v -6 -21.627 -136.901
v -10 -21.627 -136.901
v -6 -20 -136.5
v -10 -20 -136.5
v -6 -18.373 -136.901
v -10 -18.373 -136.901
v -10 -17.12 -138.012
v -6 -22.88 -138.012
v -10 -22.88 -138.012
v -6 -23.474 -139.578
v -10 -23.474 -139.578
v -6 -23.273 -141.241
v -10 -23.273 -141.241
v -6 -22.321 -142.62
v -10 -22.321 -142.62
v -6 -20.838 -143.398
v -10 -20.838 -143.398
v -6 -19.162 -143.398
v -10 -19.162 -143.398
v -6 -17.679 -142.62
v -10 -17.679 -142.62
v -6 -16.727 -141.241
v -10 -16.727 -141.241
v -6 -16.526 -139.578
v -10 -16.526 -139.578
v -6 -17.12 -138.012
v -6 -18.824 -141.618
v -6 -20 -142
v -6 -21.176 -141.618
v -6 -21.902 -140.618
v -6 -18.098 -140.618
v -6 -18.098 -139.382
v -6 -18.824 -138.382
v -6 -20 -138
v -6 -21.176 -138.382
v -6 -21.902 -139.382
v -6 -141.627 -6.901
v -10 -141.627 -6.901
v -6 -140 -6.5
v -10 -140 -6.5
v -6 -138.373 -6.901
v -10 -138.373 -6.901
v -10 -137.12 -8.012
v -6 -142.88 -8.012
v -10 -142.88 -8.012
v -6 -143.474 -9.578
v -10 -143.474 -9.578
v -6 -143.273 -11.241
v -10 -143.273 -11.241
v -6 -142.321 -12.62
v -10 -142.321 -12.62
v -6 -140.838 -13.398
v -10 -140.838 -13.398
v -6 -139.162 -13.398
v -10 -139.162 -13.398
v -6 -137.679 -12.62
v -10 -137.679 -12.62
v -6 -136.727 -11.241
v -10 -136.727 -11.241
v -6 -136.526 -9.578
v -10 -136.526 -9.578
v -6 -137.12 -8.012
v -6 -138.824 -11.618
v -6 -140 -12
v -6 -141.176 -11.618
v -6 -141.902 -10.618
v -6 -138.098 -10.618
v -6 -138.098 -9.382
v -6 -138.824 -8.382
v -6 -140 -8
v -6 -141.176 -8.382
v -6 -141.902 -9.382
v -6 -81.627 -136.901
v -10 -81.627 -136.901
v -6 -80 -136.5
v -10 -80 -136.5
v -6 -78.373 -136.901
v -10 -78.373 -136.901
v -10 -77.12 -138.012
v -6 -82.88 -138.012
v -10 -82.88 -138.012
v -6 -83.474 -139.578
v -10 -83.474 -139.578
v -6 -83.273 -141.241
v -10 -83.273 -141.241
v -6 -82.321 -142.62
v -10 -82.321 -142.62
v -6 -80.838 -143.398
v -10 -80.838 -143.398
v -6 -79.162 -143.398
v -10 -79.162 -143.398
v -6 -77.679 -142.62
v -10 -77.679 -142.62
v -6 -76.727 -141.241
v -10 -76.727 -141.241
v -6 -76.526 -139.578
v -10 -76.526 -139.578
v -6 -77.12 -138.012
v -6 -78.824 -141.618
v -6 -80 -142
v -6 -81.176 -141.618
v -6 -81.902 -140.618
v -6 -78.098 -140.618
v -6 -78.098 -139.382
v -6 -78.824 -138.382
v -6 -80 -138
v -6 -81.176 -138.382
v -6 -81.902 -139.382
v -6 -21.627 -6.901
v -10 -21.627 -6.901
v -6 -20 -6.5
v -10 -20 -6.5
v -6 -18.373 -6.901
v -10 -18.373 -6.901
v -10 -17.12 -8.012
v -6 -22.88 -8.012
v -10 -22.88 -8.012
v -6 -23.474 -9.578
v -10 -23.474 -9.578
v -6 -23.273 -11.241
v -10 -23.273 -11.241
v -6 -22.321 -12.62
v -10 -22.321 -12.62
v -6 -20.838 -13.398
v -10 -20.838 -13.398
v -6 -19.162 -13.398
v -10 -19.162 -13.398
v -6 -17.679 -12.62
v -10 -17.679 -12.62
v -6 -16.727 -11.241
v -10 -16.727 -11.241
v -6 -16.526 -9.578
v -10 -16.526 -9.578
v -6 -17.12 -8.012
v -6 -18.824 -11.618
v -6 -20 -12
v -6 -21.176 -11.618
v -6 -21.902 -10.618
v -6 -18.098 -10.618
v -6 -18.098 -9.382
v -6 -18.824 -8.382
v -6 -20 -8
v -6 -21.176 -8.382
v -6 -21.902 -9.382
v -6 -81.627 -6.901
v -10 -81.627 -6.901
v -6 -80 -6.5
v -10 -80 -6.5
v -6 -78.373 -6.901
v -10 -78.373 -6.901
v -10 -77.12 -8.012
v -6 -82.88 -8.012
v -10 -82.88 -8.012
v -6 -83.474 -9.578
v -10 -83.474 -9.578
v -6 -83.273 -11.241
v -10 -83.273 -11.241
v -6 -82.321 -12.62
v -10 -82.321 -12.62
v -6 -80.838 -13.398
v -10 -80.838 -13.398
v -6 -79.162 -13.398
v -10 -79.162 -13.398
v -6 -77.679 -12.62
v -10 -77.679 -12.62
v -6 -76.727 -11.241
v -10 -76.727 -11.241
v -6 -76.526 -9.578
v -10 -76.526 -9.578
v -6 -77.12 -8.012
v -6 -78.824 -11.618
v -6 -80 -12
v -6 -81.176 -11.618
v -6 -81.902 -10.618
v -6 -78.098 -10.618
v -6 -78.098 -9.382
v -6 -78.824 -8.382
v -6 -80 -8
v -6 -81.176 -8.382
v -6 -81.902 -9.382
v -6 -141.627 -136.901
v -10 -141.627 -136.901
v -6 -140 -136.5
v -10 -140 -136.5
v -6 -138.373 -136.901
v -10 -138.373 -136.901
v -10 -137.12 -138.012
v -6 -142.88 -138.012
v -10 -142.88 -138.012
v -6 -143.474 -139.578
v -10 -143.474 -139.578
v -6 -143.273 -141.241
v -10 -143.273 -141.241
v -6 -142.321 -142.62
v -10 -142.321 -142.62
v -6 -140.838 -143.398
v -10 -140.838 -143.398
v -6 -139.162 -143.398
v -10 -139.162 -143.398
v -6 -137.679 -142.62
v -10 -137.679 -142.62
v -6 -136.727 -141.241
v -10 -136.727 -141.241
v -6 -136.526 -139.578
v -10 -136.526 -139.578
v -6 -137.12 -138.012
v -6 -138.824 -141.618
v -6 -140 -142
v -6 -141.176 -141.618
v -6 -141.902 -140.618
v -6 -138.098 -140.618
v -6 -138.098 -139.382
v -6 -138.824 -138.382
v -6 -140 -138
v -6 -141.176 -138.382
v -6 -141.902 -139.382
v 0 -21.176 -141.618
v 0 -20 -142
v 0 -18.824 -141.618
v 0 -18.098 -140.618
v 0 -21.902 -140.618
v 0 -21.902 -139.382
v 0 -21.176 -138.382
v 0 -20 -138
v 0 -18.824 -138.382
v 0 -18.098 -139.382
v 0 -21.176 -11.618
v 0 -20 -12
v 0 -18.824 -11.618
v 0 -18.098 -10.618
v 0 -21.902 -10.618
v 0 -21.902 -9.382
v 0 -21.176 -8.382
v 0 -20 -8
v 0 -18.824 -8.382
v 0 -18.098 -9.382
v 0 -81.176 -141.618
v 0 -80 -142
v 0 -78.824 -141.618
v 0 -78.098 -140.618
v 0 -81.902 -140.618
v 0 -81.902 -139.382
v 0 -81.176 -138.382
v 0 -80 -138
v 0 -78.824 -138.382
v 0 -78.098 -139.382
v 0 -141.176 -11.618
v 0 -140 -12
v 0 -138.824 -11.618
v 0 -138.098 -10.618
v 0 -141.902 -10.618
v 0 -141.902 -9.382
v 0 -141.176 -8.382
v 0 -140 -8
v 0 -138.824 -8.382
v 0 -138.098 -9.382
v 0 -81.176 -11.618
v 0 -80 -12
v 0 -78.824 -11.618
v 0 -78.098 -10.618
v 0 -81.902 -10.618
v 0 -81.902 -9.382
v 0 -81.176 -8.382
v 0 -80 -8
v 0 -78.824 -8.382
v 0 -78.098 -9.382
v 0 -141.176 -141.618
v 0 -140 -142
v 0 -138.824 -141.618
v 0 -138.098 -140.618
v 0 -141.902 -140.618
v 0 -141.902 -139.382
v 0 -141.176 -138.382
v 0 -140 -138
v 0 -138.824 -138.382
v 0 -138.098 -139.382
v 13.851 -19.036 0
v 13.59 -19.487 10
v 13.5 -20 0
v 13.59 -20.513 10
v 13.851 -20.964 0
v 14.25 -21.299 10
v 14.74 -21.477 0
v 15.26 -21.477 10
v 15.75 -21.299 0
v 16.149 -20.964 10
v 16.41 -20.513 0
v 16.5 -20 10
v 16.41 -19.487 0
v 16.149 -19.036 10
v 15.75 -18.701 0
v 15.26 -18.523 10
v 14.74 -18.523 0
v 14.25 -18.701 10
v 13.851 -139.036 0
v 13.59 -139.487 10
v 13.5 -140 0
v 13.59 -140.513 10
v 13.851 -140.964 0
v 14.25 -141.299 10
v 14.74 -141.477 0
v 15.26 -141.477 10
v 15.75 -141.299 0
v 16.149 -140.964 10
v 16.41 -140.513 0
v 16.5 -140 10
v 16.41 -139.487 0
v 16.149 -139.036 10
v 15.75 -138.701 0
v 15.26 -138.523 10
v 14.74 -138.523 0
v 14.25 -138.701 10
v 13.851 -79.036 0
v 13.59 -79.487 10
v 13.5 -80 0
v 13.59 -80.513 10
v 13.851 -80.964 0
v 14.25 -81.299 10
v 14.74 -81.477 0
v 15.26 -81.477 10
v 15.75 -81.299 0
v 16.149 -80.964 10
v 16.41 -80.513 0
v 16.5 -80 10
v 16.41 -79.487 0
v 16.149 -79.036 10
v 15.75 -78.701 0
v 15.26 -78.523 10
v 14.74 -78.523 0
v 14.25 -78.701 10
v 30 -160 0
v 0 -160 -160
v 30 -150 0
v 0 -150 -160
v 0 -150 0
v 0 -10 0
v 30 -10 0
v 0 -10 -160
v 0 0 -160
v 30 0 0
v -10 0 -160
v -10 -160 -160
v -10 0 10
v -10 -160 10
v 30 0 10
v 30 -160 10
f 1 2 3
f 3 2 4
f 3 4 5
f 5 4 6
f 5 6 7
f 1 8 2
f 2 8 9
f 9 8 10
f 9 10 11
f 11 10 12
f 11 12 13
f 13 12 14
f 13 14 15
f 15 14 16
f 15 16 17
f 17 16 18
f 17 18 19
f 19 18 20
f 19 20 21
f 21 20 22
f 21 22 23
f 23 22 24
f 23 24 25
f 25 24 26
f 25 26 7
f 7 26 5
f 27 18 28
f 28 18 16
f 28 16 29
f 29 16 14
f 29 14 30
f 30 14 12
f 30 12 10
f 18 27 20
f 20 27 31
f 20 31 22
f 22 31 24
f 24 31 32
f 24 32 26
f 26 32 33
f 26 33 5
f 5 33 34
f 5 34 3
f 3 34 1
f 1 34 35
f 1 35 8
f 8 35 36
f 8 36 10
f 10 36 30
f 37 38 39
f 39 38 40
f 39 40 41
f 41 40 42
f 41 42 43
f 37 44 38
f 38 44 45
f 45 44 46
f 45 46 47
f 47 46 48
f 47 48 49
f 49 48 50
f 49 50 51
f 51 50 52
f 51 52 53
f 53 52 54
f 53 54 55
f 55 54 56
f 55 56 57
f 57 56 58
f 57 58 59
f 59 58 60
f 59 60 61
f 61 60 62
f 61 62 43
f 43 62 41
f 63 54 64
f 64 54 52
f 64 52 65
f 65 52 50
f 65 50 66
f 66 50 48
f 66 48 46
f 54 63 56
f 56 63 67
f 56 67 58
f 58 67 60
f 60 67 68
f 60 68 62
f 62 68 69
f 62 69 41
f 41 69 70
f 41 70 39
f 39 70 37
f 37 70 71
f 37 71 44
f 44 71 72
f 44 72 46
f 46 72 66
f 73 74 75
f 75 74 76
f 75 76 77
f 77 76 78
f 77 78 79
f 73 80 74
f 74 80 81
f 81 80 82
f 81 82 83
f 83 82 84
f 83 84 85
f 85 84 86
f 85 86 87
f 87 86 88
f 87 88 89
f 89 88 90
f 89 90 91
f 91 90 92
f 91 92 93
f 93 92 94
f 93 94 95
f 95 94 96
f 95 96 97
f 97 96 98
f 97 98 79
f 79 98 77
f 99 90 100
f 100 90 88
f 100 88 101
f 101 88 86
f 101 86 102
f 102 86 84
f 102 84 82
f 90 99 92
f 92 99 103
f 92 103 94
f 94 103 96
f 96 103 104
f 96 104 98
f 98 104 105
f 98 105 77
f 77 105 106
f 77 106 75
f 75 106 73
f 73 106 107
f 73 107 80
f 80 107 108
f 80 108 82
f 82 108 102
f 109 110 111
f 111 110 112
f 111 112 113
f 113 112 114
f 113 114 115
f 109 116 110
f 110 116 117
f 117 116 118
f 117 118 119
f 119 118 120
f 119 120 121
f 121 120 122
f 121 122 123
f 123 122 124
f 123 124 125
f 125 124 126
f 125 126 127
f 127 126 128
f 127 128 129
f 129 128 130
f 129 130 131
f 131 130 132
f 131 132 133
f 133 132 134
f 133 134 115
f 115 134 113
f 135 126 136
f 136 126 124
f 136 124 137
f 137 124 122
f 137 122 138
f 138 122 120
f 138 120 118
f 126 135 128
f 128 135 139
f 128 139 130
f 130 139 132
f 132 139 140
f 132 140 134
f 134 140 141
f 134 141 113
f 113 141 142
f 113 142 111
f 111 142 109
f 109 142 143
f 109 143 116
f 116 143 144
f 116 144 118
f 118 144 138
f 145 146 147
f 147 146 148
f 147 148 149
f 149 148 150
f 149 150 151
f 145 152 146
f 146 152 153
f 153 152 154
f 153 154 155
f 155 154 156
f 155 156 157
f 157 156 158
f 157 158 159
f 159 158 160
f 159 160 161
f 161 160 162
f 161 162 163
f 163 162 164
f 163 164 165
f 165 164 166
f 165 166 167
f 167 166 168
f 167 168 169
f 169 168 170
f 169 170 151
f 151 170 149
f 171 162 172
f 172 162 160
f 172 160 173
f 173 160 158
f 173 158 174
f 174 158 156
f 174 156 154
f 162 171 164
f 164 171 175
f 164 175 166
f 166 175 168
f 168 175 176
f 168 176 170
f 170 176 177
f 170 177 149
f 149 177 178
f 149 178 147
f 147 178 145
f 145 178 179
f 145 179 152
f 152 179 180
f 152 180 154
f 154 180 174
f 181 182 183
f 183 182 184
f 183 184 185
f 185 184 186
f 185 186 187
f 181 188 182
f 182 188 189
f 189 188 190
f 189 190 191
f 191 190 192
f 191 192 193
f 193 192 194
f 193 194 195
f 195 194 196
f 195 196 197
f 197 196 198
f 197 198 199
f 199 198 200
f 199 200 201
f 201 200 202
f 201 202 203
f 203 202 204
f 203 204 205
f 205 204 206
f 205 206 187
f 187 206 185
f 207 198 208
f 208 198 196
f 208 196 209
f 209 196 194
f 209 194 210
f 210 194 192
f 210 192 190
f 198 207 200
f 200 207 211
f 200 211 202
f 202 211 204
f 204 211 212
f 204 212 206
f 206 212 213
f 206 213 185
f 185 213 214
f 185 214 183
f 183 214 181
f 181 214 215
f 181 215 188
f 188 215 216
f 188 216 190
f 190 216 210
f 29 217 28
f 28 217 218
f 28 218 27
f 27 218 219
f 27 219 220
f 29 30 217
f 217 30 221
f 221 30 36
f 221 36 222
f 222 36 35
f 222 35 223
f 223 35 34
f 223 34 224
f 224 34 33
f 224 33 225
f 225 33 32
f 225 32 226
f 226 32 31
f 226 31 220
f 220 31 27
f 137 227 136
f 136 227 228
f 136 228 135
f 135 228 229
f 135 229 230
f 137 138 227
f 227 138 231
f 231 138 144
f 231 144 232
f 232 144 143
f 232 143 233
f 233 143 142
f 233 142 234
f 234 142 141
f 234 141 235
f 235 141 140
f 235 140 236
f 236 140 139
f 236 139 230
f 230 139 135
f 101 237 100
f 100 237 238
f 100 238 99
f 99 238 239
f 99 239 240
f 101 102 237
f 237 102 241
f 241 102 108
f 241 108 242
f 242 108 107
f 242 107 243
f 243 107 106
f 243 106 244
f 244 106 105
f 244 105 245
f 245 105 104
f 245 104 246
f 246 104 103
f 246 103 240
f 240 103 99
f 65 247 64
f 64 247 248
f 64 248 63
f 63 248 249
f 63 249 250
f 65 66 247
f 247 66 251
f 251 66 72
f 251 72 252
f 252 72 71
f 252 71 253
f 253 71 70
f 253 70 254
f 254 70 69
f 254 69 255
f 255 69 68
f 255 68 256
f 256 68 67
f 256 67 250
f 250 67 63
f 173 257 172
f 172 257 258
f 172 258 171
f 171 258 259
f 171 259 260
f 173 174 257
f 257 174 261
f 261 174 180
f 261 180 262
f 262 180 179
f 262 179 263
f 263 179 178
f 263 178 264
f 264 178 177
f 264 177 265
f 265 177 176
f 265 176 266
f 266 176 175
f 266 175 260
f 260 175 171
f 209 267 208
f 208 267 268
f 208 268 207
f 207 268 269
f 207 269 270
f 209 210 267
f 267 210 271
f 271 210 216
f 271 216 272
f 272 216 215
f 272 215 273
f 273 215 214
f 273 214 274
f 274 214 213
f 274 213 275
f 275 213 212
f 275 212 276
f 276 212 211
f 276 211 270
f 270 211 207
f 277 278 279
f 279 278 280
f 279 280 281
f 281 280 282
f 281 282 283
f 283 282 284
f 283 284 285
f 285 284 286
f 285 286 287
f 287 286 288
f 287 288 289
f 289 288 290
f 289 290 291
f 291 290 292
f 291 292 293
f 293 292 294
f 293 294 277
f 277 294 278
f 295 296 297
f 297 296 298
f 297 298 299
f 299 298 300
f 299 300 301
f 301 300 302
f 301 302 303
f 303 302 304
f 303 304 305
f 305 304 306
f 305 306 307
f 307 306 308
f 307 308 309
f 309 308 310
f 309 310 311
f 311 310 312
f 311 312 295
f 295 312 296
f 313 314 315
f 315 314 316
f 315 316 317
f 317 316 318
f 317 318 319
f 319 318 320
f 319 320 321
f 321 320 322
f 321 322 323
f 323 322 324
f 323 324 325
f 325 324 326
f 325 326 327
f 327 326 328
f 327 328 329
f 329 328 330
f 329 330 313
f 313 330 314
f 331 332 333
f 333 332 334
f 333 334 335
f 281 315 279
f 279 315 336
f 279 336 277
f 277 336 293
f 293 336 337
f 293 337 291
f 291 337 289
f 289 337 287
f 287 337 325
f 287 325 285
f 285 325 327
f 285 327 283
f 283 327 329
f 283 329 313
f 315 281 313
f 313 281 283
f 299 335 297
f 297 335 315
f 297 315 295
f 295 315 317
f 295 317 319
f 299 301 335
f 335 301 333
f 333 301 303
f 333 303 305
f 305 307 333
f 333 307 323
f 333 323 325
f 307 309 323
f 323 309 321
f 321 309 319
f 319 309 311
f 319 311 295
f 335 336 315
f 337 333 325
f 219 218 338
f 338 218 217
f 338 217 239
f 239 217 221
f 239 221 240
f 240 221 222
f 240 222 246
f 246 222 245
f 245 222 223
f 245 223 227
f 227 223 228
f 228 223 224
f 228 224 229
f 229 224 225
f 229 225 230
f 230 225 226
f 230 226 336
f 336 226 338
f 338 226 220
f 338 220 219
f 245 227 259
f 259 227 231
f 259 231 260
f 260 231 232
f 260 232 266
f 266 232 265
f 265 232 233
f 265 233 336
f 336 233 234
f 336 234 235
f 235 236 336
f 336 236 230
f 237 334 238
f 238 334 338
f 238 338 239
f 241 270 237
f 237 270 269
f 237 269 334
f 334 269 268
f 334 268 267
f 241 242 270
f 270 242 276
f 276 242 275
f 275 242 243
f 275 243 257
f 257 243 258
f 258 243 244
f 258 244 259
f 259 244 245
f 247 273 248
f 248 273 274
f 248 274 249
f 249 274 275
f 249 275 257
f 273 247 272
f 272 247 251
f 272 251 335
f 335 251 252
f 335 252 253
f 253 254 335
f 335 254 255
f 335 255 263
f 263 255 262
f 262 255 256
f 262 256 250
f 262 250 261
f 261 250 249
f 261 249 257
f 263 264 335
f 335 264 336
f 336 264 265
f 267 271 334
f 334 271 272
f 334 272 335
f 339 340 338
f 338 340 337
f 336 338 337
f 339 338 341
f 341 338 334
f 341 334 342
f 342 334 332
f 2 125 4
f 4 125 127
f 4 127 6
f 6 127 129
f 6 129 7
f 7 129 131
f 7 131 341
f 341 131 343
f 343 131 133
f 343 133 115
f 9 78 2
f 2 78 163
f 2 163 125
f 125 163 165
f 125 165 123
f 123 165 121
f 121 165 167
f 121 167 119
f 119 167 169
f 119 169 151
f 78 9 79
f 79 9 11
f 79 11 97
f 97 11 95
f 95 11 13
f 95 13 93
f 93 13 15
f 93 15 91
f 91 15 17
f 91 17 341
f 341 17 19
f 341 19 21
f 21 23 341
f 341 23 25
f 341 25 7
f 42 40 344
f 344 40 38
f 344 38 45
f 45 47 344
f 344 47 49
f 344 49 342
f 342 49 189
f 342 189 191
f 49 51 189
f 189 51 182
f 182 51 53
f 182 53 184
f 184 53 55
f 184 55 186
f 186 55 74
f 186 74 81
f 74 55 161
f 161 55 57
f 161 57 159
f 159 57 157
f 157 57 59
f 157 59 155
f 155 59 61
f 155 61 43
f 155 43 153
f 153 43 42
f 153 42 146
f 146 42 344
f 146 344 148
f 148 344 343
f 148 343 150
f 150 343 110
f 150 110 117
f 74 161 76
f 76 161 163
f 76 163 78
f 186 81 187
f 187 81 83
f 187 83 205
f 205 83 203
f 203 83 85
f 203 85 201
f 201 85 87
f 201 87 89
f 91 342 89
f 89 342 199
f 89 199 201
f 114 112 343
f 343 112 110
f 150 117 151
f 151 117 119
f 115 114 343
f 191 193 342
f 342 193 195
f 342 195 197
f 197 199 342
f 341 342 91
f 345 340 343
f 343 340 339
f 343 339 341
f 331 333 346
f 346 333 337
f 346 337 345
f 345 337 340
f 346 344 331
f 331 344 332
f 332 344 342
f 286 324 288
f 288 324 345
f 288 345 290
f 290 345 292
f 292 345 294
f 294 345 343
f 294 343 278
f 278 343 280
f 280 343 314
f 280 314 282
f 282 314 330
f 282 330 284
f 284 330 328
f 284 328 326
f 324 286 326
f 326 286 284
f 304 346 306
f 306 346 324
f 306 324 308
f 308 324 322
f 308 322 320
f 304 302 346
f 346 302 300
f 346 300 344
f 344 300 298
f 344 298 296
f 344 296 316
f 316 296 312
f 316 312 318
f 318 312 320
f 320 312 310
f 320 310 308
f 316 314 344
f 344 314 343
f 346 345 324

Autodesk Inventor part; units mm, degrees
ref_plane "YZ Plane" through (0, 0, 0) normal (1, 0, 0) x (0, 1, 0)
ref_plane "XZ Plane" through (0, 0, 0) normal (0, 1, 0) x (-1, 0, 0)
ref_plane "XY Plane" through (0, 0, 0) normal (0, 0, 1) x (1, 0, 0)
sketch "Sketch21" plane through (0, 0, 0) normal (0, 0, 1) x (1, 0, 0)
  line L0 (0, 0) -> (30, 0)
  line L1 (30, 0) -> (30, -160)
  line L2 (30, -160) -> (0, -160)
  line L3 (0, -160) -> (0, 0)
  dimension "d53" = 30
  dimension "d1" = 160
extrude "Extrusion15" add sketch "Sketch21" along normal blind 10
sketch "Sketch22" plane through (0, -160, 0) normal (-1, 0, 0) x (0, 0, 1)
  line L0 (0, 160) -> (10, 160) projected
  line L1 (10, 160) -> (-160, 160)
  line L2 (-160, 160) -> (-160, 0)
  line L3 (-160, 0) -> (10, 0)
  line L4 (10, 0) -> (10, 160)
  dimension "d57" = 170
  dimension "d58" = 160
extrude "Extrusion16" add sketch "Sketch22" along normal blind 10
sketch "Sketch23" plane through (30, 0, 10) normal (0, 1, 0) x (1, 0, 0)
  line L0 (-30, 170) -> (-40, 170) projected
  line L1 (0, 10) -> (0, 0) projected
  line L2 (-30, 170) -> (0, 10)
  line L3 (-30, 10) -> (0, 10) projected
  line L4 (0, 10) -> (-30, 10)
  line L5 (-30, 10) -> (-30, 170)
  line L6 (-40, 170) -> (-40, 0) projected
extrude "Extrusion17" add sketch "Sketch23" against normal blind 10
sketch "Sketch24" plane through (30, -160, 0) normal (0, -1, 0) x (1, 0, 0)
  line L0 (-30, -160) -> (-40, -160) projected
  line L1 (-30, 0) -> (0, 0) projected
  line L2 (-30, -160) -> (-30, 0)
  line L3 (0, 0) -> (0, 10) projected
  line L4 (-30, 0) -> (0, 0)
  line L5 (-30, -160) -> (0, 0) projected
  line L6 (0, 0) -> (-30, -160)
extrude "Extrusion18" add sketch "Sketch24" against normal blind 10
sketch "Sketch25" plane through (0, 0, 10) normal (0, 0, 1) x (1, 0, 0)
  circle A0 centre (15, -20) radius 1.5
  circle A1 centre (15, -80) radius 1.5
  circle A2 centre (15, -140) radius 1.5
  line L0 (30, -160) -> (-10, -160) projected
  line L1 (30, 0) -> (-10, 0) projected
  point P0 (0, 0)
  dimension "d65" = 3
  dimension "d66" = 3
  dimension "d67" = 3
  dimension "d70" = 20
  dimension "d71" = 20
  dimension "d72" = 80
extrude "Extrusion19" cut sketch "Sketch25" against normal blind 20
sketch "Sketch27" plane through (-10, -160, 0) normal (-1, 0, 0) x (0, 0, 1)
  circle A0 centre (-10, 20) radius 2
  line L0 (-160, 0) -> (10, 0) projected
  circle A1 centre (-10, 80) radius 2
  circle A2 centre (-10, 140) radius 2
  line L1 (10, 160) -> (-160, 160) projected
  line L2 (10, 0) -> (10, 160) projected
  circle A3 centre (-140, 80) radius 2
  line L3 (-160, 160) -> (-160, 0) projected
  circle A4 centre (-140, 20) radius 2
  circle A5 centre (-140, 140) radius 2
  point P0 (0, 160)
  dimension "d73" = 20
  dimension "d74" = 4
  dimension "d75" = 4
  dimension "d76" = 80
  dimension "d77" = 4
  dimension "d78" = 20
  dimension "d79" = 20
  dimension "d80" = 20
  dimension "d81" = 20
  dimension "d84" = 4
  dimension "d85" = 20
  dimension "d86" = 80
  dimension "d87" = 4
  dimension "d88" = 20
  dimension "d89" = 20
  dimension "d90" = 4
  dimension "d91" = 20
  dimension "d92" = 20
extrude "Extrusion20" cut sketch "Sketch27" against normal blind 20 contours A0 | A1 | A2 | A3 | A4 | A5
sketch "Sketch29" plane through (-10, -160, 0) normal (-1, 0, 0) x (0, 0, 1)
  circle A0 centre (-140, 80) radius 2 projected
  circle A1 centre (-140, 80) radius 3.5
  circle A2 centre (-140, 20) radius 2 projected
  circle A3 centre (-140, 20) radius 3.5
  circle A4 centre (-140, 140) radius 2 projected
  circle A5 centre (-140, 140) radius 3.5
  circle A6 centre (-10, 20) radius 2 projected
  circle A7 centre (-10, 20) radius 3.5
  circle A8 centre (-10, 80) radius 2 projected
  circle A9 centre (-10, 80) radius 3.5
  circle A10 centre (-10, 140) radius 2 projected
  circle A11 centre (-10, 140) radius 3.5
  point P0 (0, 160)
  dimension "d93" = 7
  dimension "d94" = 7
  dimension "d95" = 7
  dimension "d96" = 7
  dimension "d97" = 7
  dimension "d98" = 7
extrude "Extrusion21" cut sketch "Sketch29" against normal blind 4 contours A0 | A1 | A2 | A3 | A4 | A5 | A6 | A7 | A8 | A9 | A10 | A11
equation "\"d58\" = d1"
equation "\"d65\" = d67"
equation "\"d66\" = d67"
equation "\"d71\" = d70"
equation "\"d73\" = d70"
equation "\"d74\" = d75"
equation "\"d76\" = d72"
equation "\"d77\" = d75"
equation "\"d78\" = d70"
equation "\"d80\" = d79"
equation "\"d81\" = d79"
equation "\"d84\" = d75"
equation "\"d85\" = d79"
equation "\"d86\" = d72"
equation "\"d87\" = d75"
equation "\"d88\" = d79"
equation "\"d89\" = d70"
equation "\"d90\" = d75"
equation "\"d91\" = d79"
equation "\"d92\" = d70"
equation "\"d94\" = d93"
equation "\"d95\" = d93"
equation "\"d96\" = d93"
equation "\"d97\" = d93"
equation "\"d98\" = d93"
properties part number "bracket_v01"
